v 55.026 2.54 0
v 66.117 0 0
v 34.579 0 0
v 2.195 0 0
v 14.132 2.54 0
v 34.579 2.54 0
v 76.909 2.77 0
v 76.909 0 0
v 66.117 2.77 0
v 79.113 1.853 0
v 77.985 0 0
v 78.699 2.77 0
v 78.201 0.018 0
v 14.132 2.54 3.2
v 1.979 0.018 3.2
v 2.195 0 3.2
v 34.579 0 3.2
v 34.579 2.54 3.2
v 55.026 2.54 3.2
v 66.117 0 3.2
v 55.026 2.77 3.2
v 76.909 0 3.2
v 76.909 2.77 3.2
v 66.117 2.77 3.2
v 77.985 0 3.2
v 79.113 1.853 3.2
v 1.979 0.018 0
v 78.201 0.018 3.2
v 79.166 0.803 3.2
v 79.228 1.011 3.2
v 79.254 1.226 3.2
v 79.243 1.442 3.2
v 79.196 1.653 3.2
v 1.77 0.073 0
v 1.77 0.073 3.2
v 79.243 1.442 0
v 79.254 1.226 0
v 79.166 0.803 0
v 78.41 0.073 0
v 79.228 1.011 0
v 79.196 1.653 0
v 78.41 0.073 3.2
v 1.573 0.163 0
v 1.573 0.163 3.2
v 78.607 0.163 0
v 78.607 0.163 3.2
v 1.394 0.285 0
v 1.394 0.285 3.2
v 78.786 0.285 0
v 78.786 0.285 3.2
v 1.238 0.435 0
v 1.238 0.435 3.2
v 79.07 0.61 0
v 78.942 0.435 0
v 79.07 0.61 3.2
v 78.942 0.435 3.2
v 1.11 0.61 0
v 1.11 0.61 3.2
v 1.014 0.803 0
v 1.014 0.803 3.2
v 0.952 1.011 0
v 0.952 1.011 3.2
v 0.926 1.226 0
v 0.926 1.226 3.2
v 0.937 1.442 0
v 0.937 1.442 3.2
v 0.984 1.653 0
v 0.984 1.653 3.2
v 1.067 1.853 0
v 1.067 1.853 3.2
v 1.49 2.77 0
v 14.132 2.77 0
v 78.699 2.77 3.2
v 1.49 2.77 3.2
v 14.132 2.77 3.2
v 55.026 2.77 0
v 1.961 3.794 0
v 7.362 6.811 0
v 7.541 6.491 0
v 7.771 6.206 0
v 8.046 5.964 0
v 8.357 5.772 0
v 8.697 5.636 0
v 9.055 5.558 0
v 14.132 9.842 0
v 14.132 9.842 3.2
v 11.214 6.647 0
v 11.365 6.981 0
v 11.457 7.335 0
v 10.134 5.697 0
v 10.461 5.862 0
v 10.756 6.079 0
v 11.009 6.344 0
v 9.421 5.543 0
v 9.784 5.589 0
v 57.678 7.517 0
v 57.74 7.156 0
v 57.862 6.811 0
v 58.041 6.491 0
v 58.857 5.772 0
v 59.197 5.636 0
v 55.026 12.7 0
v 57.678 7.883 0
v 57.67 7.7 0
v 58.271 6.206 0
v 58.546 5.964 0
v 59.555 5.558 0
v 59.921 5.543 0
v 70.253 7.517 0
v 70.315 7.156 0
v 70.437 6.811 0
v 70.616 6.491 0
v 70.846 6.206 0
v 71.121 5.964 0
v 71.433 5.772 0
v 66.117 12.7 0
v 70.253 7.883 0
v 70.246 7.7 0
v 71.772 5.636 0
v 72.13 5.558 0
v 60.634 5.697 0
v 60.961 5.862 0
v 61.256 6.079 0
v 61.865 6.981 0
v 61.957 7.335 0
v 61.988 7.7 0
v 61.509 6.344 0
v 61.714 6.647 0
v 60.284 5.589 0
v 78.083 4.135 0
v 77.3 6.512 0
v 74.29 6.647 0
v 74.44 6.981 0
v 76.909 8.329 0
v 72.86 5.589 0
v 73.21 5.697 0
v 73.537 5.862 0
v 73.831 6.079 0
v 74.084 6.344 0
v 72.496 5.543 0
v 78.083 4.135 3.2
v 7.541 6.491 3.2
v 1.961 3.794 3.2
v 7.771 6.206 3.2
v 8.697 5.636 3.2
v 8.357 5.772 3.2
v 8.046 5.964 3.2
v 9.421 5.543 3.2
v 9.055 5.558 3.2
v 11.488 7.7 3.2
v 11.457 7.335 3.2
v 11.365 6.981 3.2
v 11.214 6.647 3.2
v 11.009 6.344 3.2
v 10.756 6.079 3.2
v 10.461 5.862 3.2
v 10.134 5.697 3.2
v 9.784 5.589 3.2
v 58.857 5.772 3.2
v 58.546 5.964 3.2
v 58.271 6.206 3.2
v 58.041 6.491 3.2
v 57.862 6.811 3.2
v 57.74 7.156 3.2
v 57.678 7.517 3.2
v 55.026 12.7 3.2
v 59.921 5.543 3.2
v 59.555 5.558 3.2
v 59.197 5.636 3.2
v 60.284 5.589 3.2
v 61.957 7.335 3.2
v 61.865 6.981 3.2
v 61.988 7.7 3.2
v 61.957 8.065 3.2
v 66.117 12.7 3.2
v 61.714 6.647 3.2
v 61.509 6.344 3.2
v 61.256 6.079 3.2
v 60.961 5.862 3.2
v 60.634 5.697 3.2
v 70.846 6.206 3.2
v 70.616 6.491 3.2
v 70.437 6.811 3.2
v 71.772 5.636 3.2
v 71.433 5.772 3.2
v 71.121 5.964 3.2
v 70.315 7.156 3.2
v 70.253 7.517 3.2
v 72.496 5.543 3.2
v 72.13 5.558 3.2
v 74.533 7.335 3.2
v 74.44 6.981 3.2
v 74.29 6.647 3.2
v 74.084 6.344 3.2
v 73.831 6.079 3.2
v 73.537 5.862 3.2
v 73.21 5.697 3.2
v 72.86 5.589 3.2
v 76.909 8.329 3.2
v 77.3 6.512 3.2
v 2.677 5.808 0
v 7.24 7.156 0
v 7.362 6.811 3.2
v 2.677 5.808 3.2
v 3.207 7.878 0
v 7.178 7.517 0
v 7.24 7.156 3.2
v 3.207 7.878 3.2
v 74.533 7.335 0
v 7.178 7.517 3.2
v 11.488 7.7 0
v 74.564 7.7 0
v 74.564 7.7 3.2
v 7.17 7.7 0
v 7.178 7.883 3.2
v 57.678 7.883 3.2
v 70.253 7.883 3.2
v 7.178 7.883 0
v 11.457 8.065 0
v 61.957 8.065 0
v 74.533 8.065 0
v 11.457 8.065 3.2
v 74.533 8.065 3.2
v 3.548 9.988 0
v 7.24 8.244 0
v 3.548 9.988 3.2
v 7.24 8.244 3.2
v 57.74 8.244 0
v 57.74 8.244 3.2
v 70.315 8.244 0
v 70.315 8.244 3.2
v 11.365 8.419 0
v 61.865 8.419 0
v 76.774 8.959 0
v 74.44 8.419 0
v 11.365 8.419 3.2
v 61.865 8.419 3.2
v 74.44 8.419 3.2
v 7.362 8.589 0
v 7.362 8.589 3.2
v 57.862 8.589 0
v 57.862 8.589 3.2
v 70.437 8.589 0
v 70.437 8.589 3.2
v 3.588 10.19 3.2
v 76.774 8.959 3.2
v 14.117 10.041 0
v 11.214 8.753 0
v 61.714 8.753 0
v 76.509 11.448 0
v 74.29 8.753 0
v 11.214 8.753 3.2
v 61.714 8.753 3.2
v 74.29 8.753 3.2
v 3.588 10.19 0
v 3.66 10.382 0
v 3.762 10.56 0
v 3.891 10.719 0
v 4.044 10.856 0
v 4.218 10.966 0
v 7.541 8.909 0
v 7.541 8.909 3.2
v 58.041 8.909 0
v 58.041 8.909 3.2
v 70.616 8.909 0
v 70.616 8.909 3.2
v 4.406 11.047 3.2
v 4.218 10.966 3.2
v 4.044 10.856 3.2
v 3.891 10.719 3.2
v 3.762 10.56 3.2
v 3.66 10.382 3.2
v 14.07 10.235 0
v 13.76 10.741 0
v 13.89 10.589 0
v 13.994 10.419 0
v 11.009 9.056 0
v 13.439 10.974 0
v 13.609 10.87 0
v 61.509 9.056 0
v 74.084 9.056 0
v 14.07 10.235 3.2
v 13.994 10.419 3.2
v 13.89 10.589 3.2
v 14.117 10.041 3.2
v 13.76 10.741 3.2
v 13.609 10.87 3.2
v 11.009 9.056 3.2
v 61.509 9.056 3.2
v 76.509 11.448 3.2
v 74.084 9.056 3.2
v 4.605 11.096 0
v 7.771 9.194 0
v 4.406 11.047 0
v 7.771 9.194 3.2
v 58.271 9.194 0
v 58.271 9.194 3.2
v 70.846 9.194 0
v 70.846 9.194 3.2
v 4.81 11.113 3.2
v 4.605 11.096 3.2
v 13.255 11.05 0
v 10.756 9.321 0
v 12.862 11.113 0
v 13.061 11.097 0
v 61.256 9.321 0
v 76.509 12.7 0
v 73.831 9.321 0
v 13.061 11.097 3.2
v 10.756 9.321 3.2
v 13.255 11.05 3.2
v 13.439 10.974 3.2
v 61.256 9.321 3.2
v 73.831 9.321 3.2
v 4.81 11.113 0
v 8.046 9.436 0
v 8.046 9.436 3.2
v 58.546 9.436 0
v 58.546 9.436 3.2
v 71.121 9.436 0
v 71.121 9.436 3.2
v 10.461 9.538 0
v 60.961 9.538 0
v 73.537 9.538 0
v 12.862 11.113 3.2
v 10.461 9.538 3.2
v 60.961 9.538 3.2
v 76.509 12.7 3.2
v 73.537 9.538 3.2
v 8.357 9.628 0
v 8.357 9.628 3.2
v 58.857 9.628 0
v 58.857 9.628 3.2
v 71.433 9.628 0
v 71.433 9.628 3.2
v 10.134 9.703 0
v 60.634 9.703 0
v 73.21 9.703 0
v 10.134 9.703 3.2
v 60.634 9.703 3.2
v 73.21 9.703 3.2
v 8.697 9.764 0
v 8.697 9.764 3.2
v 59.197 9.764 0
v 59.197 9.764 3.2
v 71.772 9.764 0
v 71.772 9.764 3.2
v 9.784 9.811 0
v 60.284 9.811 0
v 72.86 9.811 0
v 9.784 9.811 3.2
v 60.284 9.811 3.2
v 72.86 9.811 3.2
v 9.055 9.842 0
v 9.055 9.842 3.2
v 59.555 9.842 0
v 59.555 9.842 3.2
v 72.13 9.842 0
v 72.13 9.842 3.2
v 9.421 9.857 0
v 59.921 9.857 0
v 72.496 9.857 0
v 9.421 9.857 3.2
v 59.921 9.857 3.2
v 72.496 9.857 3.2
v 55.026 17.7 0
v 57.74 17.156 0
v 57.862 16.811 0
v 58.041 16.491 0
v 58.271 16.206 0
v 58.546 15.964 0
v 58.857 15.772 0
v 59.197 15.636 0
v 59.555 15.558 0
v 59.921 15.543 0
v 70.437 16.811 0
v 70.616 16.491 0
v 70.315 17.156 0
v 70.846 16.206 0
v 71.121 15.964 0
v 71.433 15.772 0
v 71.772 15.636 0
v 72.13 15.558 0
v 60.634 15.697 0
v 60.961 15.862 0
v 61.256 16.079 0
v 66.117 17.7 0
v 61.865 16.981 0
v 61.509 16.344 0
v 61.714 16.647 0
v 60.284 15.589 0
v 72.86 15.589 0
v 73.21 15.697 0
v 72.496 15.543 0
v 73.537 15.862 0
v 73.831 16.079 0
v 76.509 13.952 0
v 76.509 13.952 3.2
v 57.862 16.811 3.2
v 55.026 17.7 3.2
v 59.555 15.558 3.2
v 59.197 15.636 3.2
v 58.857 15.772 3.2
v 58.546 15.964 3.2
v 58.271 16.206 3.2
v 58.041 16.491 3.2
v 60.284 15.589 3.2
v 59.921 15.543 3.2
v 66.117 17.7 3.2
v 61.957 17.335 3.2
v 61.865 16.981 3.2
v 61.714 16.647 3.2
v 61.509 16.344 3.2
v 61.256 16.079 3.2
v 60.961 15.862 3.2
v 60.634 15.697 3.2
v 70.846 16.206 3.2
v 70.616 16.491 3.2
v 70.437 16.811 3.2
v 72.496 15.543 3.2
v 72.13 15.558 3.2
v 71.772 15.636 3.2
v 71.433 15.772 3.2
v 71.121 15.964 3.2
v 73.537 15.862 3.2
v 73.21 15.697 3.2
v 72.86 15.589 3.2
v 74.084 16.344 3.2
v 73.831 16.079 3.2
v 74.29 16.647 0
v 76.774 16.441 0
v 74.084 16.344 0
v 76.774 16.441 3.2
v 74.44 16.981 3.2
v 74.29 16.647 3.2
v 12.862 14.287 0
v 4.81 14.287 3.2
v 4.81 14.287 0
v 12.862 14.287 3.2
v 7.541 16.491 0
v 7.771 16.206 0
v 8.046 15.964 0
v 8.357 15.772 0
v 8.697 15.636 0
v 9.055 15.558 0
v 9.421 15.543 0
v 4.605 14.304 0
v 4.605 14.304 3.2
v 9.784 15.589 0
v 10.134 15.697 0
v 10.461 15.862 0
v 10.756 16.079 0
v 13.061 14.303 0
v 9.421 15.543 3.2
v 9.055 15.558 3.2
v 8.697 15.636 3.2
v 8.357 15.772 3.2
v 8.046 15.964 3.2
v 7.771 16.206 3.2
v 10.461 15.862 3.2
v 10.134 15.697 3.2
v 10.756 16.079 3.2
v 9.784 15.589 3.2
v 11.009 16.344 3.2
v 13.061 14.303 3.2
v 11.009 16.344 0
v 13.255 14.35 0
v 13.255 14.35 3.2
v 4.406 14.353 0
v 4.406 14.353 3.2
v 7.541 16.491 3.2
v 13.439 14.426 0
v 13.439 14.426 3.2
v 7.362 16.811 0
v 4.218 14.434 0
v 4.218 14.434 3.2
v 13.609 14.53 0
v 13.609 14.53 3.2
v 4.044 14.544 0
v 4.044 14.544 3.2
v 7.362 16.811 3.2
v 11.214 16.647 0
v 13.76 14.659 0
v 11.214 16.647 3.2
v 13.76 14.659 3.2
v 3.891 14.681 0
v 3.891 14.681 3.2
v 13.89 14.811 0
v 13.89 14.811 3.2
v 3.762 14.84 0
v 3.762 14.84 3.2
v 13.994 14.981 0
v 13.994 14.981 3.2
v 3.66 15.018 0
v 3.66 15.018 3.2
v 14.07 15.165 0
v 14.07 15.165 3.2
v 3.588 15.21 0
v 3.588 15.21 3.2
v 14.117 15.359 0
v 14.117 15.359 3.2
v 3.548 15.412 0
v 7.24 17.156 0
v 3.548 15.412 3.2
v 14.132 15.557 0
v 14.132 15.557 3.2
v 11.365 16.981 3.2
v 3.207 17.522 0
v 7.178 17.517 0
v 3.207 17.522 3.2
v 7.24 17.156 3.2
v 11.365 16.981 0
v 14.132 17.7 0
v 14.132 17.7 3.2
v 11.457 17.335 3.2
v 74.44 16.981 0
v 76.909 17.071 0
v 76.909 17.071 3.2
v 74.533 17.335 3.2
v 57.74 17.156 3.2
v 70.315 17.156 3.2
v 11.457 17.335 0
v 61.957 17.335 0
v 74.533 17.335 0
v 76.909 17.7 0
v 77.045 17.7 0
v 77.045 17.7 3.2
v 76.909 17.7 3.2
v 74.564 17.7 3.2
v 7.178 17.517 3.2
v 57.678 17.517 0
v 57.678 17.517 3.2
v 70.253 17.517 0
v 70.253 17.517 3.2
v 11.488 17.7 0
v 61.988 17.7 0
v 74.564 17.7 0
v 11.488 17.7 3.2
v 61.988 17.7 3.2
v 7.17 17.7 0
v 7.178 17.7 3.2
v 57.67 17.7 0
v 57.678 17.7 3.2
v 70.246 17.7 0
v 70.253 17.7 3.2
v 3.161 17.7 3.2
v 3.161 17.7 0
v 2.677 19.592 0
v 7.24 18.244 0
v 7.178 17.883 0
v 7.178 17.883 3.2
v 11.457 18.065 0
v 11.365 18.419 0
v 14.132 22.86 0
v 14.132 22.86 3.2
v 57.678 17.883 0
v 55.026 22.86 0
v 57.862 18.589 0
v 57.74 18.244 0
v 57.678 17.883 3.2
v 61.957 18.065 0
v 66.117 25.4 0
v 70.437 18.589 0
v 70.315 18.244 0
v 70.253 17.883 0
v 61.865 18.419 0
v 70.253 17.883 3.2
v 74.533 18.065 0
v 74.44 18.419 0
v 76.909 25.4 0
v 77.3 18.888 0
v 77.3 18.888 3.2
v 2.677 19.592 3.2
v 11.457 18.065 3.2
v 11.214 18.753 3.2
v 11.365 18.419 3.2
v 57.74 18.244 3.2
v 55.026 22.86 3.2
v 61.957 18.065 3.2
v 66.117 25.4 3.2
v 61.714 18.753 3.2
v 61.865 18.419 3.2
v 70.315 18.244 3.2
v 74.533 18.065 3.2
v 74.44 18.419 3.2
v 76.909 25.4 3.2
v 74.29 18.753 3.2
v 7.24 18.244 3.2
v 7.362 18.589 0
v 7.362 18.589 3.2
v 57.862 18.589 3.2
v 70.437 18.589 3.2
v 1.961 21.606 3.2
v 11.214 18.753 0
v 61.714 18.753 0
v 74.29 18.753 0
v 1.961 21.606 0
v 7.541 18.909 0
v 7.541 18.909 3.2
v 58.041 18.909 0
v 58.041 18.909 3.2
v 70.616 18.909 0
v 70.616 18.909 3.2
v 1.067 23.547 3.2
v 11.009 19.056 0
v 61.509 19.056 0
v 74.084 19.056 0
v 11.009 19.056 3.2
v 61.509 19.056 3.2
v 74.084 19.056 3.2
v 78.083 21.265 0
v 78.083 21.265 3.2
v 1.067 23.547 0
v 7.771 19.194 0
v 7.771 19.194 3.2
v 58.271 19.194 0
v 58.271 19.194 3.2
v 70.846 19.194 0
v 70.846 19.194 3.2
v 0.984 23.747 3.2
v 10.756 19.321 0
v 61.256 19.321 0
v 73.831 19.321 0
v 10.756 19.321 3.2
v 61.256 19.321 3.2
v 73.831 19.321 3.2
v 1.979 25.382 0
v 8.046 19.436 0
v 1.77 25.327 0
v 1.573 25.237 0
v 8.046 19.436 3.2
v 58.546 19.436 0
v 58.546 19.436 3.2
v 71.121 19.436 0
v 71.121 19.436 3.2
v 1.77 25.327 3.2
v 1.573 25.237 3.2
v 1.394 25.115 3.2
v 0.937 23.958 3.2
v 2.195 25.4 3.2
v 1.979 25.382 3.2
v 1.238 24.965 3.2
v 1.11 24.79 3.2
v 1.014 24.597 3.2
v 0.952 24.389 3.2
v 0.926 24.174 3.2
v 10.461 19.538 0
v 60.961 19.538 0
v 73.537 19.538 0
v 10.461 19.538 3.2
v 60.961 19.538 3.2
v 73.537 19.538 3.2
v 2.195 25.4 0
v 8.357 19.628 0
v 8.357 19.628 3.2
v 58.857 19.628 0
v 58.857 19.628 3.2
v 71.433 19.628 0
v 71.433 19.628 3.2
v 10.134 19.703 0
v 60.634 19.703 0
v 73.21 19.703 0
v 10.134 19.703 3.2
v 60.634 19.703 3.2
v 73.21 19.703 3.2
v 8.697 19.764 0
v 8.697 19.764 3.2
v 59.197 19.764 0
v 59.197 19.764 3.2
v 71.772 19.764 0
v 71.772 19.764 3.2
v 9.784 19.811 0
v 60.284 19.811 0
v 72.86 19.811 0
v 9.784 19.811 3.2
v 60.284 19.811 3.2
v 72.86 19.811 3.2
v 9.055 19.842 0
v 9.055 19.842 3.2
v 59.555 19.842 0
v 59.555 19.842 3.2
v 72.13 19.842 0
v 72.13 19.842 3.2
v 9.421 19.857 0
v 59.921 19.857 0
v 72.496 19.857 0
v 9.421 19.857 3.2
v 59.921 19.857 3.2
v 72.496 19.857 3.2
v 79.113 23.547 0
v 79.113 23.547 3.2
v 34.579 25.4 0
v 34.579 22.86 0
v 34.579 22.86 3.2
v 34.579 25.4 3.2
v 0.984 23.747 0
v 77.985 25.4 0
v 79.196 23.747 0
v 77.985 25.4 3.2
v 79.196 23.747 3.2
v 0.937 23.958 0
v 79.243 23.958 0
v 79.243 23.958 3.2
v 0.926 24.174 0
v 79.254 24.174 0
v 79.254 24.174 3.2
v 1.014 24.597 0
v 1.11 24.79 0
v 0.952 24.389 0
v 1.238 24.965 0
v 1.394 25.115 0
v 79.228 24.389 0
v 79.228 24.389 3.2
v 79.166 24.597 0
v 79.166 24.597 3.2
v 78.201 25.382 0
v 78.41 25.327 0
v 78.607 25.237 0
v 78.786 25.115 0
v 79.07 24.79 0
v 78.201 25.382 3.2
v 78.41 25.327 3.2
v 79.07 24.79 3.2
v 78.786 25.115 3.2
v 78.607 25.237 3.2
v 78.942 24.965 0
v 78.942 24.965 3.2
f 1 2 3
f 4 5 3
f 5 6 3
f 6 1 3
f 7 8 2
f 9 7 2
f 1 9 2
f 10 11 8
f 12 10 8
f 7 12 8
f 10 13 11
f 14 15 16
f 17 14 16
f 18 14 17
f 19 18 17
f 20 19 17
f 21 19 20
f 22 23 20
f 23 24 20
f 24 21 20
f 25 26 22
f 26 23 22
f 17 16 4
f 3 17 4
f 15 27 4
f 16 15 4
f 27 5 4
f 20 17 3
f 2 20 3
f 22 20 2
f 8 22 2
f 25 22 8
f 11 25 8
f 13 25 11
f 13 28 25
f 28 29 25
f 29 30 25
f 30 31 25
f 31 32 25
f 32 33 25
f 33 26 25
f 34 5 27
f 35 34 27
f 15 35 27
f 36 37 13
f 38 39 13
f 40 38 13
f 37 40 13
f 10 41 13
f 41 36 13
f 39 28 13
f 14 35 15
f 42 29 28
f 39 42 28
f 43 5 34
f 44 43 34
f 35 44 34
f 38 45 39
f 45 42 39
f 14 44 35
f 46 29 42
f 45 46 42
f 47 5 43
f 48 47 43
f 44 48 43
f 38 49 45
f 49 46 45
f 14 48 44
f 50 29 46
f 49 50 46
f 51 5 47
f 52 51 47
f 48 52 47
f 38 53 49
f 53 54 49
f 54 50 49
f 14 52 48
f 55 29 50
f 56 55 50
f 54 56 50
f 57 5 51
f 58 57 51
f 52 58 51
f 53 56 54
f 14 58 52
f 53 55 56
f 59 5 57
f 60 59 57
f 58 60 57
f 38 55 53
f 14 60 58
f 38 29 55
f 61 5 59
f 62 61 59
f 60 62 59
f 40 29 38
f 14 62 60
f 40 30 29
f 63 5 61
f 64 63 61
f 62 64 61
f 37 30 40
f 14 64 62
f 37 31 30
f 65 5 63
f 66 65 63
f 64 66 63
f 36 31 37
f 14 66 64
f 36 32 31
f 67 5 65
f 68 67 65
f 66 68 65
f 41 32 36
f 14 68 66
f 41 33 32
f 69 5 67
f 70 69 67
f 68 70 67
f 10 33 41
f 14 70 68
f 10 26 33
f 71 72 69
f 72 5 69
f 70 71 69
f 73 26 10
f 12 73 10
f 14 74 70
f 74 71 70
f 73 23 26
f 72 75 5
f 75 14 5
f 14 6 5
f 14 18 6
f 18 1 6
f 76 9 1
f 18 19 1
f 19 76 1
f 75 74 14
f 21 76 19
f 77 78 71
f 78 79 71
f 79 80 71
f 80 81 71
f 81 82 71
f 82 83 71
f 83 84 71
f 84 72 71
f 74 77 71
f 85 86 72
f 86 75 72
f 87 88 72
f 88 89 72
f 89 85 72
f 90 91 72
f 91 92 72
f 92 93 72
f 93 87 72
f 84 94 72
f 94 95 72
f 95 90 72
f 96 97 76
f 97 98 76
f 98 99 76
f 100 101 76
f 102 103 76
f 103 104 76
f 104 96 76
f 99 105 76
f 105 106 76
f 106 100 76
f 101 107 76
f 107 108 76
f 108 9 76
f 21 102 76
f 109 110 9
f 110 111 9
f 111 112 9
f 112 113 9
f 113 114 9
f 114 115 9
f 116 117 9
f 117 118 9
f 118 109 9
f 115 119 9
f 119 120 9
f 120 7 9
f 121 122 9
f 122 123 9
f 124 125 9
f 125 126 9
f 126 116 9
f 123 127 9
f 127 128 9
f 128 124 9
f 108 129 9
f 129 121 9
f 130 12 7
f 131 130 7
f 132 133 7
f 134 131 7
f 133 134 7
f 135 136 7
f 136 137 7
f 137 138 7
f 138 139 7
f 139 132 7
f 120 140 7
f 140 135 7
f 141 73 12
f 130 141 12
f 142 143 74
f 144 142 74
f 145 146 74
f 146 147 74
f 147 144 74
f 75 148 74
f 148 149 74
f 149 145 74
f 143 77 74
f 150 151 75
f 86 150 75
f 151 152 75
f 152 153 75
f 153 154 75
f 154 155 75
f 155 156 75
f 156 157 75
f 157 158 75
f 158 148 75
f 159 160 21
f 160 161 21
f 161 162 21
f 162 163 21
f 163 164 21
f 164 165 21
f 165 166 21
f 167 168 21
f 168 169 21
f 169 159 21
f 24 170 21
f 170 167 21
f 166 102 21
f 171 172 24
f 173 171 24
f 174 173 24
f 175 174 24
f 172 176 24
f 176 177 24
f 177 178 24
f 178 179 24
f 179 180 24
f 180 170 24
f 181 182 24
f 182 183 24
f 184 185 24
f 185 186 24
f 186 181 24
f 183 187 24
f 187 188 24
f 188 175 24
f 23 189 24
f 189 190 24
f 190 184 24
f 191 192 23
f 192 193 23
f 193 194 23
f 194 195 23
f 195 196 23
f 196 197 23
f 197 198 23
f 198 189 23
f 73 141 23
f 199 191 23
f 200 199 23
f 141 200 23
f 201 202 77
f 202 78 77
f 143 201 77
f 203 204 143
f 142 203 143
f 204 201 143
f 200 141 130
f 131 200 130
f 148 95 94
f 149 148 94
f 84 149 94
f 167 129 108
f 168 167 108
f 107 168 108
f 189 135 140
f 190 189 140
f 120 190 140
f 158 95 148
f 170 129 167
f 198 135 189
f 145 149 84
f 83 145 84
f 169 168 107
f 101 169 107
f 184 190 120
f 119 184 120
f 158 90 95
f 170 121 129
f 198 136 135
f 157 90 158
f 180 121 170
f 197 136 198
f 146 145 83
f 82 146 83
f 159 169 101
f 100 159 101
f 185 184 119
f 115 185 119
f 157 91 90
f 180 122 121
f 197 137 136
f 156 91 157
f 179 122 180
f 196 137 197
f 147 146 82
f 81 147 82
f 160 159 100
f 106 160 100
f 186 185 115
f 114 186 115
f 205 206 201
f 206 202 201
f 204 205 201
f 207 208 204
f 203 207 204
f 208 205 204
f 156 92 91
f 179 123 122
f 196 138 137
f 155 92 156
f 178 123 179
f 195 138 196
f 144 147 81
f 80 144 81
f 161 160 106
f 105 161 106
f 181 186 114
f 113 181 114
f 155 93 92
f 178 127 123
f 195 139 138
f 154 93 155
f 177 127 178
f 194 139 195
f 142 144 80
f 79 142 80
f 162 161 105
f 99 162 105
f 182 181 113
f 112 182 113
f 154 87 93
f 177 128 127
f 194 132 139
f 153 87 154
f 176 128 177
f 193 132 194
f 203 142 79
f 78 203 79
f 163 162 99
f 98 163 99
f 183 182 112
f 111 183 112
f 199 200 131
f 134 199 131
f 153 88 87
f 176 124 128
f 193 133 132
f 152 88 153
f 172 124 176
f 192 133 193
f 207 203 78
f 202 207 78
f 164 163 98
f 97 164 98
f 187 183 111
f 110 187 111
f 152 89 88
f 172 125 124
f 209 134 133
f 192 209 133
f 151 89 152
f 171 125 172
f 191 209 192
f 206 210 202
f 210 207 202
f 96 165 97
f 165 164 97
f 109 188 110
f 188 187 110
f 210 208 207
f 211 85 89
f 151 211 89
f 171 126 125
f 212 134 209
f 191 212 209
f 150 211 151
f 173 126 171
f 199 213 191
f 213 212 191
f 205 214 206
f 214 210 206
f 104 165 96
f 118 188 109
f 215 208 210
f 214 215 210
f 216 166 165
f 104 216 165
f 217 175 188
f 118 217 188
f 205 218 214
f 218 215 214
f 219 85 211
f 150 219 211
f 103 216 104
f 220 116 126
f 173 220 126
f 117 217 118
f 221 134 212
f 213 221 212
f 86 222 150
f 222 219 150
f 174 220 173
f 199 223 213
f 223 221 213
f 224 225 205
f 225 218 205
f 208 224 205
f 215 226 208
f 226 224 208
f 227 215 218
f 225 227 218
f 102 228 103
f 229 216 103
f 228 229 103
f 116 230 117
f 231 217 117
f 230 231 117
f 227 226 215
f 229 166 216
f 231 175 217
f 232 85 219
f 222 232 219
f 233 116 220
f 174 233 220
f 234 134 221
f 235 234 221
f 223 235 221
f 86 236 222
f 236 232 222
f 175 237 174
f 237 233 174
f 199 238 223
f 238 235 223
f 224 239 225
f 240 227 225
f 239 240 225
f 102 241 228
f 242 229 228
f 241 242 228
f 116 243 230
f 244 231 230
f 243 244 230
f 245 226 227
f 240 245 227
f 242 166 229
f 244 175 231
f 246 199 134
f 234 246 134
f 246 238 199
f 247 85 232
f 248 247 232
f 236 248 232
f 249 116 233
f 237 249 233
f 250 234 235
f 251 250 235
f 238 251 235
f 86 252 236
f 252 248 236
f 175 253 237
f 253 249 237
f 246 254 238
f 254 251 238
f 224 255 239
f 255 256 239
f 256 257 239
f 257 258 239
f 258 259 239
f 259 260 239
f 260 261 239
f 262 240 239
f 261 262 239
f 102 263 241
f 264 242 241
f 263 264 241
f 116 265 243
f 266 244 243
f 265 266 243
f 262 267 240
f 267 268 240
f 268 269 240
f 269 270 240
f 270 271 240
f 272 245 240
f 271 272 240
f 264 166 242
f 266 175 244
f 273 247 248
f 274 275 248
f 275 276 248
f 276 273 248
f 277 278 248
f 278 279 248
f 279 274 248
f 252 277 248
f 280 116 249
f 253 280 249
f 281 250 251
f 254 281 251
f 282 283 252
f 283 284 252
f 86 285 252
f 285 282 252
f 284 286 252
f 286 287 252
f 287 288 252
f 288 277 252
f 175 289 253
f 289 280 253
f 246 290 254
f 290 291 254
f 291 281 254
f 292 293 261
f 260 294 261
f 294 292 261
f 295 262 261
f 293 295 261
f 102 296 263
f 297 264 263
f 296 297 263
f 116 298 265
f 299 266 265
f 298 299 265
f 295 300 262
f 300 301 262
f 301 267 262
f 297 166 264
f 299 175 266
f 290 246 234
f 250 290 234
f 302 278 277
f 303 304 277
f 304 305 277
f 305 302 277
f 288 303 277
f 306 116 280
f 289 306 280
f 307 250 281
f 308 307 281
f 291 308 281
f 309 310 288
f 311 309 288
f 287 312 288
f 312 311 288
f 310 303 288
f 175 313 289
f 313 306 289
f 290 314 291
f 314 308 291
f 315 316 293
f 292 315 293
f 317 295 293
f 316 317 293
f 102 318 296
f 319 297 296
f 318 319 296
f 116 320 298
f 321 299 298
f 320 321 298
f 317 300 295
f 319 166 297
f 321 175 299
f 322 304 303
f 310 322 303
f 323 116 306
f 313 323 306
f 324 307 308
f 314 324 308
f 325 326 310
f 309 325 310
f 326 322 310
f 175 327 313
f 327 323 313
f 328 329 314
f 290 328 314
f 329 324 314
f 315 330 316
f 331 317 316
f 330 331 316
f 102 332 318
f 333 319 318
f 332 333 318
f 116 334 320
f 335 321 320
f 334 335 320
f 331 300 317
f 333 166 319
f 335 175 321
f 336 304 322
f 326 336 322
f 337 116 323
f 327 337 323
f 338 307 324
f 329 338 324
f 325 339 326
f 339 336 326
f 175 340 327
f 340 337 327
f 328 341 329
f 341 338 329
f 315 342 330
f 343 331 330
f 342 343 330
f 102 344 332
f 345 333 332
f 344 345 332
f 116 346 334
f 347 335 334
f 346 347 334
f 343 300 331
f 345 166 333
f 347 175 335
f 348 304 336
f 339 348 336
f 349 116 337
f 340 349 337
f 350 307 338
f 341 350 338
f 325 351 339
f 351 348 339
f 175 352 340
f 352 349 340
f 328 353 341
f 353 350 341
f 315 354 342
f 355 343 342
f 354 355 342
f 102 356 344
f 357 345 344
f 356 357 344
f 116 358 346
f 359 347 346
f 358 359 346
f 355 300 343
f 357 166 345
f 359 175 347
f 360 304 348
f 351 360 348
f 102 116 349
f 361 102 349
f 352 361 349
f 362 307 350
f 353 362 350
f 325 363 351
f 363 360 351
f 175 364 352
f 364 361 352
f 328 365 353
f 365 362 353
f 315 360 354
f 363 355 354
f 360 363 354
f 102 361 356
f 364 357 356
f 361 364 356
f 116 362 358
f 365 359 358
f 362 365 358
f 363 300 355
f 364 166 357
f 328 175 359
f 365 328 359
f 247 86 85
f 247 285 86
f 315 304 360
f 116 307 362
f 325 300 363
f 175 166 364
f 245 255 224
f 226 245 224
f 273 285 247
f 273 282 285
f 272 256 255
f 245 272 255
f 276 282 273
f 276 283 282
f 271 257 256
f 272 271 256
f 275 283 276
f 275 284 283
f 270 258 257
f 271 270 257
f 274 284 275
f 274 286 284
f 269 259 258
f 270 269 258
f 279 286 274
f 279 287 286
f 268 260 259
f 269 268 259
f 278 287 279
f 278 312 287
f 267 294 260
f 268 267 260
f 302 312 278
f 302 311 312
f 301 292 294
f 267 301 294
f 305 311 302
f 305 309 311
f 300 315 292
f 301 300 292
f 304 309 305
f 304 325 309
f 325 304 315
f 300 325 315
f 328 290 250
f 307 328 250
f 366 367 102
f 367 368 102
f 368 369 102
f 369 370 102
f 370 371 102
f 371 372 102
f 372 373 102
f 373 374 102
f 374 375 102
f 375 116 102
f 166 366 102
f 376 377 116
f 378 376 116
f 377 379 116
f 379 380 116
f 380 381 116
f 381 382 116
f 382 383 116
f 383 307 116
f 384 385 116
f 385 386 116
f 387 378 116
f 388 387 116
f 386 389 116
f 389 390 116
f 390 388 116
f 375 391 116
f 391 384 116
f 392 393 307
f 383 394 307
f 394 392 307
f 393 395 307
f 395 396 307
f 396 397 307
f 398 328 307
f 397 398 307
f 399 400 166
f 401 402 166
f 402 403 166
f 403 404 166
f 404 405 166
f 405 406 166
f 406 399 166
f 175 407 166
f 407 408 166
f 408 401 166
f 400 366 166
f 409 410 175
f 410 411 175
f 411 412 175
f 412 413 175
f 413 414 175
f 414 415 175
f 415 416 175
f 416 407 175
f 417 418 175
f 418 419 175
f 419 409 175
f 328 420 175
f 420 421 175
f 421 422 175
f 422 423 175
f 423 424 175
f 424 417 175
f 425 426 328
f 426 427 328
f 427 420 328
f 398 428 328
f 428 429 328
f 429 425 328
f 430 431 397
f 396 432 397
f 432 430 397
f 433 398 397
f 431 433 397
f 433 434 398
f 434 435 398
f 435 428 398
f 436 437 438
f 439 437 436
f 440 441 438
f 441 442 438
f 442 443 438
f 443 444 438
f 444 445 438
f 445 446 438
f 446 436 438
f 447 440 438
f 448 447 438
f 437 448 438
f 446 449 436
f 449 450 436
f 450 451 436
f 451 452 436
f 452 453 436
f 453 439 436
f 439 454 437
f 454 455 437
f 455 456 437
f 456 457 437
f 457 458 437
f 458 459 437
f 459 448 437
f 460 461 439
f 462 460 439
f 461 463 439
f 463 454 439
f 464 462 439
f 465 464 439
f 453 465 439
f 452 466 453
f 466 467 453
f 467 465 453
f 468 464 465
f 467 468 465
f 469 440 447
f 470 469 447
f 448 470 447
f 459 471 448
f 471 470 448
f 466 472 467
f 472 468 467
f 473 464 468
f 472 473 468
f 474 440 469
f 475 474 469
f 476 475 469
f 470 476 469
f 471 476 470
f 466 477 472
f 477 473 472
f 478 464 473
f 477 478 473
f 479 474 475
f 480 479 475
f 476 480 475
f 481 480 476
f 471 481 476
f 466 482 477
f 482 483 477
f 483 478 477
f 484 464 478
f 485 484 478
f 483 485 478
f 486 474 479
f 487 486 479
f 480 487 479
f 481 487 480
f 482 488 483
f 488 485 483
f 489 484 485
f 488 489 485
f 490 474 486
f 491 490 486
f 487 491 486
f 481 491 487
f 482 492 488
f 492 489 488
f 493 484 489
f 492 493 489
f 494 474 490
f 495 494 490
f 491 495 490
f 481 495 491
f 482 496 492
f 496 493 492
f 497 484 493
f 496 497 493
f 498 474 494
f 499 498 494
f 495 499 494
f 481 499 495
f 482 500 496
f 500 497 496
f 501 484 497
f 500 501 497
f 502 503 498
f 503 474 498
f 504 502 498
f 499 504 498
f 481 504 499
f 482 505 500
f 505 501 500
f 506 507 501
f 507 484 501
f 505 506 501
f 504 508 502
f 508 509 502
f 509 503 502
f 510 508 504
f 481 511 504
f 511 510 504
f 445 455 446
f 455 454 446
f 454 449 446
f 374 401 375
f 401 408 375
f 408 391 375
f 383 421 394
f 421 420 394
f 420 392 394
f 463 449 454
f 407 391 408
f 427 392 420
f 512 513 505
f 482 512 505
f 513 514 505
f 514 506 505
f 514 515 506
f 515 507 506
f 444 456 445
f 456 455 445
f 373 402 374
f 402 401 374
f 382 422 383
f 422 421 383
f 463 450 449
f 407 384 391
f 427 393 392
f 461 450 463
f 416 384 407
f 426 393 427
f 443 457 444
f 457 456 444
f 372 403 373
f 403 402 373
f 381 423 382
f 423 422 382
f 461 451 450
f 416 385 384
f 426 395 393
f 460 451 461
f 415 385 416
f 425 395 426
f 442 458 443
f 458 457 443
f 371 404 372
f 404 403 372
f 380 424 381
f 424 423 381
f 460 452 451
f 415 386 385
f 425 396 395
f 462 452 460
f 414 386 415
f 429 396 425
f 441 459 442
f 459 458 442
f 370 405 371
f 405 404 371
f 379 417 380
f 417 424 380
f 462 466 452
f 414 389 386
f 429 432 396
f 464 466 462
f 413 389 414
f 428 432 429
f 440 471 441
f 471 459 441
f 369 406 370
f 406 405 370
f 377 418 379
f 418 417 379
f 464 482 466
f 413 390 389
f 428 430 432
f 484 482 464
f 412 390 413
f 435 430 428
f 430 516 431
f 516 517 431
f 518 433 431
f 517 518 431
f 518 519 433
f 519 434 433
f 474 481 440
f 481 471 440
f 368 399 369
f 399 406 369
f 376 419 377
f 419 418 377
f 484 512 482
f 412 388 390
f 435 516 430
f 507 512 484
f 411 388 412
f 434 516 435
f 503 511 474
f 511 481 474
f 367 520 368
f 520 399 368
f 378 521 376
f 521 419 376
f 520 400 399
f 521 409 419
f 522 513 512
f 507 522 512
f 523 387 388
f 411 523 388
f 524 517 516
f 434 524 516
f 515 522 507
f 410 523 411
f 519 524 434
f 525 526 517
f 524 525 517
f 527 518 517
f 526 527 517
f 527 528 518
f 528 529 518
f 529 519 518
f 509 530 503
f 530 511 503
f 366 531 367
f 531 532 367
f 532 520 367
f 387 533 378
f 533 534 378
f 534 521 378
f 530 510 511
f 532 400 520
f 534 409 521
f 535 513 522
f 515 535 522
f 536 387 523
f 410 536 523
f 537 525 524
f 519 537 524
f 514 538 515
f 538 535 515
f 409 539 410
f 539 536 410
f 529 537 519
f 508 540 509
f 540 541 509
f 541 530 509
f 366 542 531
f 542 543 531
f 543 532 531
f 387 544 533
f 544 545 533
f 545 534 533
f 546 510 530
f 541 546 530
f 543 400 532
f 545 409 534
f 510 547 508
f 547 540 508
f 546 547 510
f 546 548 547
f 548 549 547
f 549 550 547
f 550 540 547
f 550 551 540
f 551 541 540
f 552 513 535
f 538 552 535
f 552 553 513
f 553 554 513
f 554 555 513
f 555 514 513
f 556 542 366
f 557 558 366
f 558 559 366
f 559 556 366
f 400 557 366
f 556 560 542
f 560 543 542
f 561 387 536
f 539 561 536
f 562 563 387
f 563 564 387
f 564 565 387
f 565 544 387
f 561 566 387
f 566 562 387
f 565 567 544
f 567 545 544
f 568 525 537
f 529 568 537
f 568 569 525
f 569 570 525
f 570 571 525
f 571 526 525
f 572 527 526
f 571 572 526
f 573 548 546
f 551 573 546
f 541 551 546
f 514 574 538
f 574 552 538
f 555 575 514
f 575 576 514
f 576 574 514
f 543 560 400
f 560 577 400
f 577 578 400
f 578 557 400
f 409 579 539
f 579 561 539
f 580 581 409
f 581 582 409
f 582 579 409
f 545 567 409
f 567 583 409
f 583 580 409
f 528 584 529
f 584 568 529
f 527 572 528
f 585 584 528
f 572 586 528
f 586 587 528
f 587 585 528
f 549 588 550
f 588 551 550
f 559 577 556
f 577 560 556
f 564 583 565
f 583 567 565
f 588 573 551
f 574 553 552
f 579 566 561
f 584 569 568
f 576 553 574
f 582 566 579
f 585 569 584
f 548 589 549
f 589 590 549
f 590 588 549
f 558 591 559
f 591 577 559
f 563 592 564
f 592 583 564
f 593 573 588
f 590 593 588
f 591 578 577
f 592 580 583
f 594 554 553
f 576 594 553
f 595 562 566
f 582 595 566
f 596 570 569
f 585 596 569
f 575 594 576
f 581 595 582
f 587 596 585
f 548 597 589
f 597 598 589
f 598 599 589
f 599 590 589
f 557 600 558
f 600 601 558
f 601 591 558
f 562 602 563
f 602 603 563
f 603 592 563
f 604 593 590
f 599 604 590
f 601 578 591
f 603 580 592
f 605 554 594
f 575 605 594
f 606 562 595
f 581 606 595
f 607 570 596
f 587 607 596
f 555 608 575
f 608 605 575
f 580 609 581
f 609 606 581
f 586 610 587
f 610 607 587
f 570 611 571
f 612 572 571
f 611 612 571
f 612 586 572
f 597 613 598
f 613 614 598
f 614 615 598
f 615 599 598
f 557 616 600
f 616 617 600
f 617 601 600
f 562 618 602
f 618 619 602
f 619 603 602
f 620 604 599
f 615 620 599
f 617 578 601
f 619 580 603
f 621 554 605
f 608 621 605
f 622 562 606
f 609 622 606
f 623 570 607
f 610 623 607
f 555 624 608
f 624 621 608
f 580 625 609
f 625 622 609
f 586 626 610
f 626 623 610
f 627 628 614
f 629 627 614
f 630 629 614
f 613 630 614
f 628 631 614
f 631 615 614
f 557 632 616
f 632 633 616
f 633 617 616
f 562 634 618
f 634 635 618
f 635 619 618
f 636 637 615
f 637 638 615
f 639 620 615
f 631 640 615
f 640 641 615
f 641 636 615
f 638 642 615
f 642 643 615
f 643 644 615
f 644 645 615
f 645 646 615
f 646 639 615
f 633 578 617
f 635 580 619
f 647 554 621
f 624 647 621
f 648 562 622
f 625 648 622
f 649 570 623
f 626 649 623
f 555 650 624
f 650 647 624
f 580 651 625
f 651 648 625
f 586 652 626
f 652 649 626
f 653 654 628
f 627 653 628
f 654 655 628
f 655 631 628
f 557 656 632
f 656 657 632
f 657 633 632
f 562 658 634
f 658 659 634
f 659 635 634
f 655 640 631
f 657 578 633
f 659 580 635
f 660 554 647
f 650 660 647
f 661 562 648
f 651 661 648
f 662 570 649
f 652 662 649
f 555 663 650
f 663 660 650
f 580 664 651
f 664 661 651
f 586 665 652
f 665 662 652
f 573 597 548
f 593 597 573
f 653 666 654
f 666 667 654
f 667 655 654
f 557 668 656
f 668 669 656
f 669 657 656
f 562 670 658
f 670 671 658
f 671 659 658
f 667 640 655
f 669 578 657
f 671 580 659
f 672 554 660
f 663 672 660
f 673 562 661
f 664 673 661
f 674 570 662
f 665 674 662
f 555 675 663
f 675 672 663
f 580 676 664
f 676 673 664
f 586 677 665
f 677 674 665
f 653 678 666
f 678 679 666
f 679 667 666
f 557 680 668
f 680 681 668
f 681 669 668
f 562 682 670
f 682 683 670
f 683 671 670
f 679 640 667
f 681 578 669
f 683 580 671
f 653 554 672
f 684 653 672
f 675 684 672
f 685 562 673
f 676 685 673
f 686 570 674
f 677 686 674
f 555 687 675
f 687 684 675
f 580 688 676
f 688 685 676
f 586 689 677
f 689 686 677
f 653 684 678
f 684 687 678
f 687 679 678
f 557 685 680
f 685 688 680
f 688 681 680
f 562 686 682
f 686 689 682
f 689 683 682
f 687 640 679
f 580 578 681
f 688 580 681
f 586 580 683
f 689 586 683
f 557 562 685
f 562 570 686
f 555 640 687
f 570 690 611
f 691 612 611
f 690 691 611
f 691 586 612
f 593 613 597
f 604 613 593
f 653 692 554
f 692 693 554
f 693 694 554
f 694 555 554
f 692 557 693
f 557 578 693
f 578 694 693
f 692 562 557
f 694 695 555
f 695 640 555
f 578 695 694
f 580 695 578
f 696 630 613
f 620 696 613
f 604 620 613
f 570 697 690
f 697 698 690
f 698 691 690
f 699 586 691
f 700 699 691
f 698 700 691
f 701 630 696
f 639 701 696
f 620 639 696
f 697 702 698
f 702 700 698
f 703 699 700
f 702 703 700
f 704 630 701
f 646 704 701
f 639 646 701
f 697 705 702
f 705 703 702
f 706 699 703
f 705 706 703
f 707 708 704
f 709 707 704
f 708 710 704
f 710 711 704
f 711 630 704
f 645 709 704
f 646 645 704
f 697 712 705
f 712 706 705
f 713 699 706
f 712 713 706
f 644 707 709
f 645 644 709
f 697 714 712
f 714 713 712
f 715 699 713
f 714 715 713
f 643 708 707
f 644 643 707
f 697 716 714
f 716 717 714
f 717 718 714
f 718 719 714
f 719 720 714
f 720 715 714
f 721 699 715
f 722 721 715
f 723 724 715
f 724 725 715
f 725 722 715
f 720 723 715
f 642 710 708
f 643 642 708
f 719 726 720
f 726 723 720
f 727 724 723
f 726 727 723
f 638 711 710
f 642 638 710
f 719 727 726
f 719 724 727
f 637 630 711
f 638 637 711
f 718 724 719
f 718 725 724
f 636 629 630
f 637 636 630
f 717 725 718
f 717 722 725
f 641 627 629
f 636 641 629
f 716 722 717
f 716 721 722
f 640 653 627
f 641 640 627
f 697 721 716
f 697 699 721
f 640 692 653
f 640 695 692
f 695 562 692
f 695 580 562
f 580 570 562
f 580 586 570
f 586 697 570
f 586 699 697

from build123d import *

# Parameters (mm, degrees)
SKETCH1_W           = 40.894
SKETCH1_H           = 20.32
BOSS_EXTRUDE1_DEPTH = 3.2004
SKETCH2_R           = 2.159
CUT_EXTRUDE1_DEPTH  = 3.2004
SKETCH3_W           = 10.481403753
SKETCH3_H           = 3.175
CUT_EXTRUDE2_DEPTH  = 3.2004
FILLET1_R           = 1.27


with BuildPart() as part:
    # Sketch1 → Boss-Extrude1 (new body)
    with BuildSketch(Plane.XY):
        with BuildLine():
            Line((0, 25.4), (80.179895682, 25.4))
            ThreePointArc((80.179895682, 25.4), (76.475447841, 12.7), (80.179895682, 0))
            Line((80.179895682, 0), (0, 0))
            ThreePointArc((0, 0), (3.704447841, 12.7), (0, 25.4))
        make_face()
        with Locations((34.579447813, 12.7)):
            Rectangle(SKETCH1_W, SKETCH1_H, mode=Mode.SUBTRACT)
    extrude(amount=BOSS_EXTRUDE1_DEPTH)

    # Sketch2 → Cut-Extrude1 (cut)
    with BuildSketch(Plane.XY.offset(3.2004)):
        with Locations((9.329447813, 17.7)):
            Circle(SKETCH2_R)
        with Locations((59.829447813, 7.7)):
            Circle(SKETCH2_R)
        with Locations((59.829447813, 17.7)):
            Circle(SKETCH2_R)
        with Locations((9.329447813, 7.7)):
            Circle(SKETCH2_R)
        with Locations((72.404688187, 17.7)):
            Circle(SKETCH2_R)
        with Locations((72.404688187, 7.7)):
            Circle(SKETCH2_R)
    extrude(amount=-CUT_EXTRUDE1_DEPTH, mode=Mode.SUBTRACT)

    # Sketch3 → Cut-Extrude2 (cut)
    with BuildSketch(Plane.XY.offset(3.2004)):
        with Locations((8.891745937, 12.7)):
            Rectangle(SKETCH3_W, SKETCH3_H)
    extrude(amount=-CUT_EXTRUDE2_DEPTH, mode=Mode.SUBTRACT)

    # Fillet1
    fillet1_edges = [part.edges().sort_by_distance(p)[0] for p in [
        (14.132447813, 11.1125, 1.6002),
        (14.132447813, 14.2875, 1.6002),
        (3.65104406, 14.2875, 1.6002),
        (3.65104406, 11.1125, 1.6002),
        (0, 25.4, 1.6002),
        (80.179895682, 25.4, 1.6002),
        (80.179895682, 0, 1.6002),
        (0, 0, 1.6002),
    ]]
    fillet(fillet1_edges, radius=FILLET1_R)


solid = part.part
